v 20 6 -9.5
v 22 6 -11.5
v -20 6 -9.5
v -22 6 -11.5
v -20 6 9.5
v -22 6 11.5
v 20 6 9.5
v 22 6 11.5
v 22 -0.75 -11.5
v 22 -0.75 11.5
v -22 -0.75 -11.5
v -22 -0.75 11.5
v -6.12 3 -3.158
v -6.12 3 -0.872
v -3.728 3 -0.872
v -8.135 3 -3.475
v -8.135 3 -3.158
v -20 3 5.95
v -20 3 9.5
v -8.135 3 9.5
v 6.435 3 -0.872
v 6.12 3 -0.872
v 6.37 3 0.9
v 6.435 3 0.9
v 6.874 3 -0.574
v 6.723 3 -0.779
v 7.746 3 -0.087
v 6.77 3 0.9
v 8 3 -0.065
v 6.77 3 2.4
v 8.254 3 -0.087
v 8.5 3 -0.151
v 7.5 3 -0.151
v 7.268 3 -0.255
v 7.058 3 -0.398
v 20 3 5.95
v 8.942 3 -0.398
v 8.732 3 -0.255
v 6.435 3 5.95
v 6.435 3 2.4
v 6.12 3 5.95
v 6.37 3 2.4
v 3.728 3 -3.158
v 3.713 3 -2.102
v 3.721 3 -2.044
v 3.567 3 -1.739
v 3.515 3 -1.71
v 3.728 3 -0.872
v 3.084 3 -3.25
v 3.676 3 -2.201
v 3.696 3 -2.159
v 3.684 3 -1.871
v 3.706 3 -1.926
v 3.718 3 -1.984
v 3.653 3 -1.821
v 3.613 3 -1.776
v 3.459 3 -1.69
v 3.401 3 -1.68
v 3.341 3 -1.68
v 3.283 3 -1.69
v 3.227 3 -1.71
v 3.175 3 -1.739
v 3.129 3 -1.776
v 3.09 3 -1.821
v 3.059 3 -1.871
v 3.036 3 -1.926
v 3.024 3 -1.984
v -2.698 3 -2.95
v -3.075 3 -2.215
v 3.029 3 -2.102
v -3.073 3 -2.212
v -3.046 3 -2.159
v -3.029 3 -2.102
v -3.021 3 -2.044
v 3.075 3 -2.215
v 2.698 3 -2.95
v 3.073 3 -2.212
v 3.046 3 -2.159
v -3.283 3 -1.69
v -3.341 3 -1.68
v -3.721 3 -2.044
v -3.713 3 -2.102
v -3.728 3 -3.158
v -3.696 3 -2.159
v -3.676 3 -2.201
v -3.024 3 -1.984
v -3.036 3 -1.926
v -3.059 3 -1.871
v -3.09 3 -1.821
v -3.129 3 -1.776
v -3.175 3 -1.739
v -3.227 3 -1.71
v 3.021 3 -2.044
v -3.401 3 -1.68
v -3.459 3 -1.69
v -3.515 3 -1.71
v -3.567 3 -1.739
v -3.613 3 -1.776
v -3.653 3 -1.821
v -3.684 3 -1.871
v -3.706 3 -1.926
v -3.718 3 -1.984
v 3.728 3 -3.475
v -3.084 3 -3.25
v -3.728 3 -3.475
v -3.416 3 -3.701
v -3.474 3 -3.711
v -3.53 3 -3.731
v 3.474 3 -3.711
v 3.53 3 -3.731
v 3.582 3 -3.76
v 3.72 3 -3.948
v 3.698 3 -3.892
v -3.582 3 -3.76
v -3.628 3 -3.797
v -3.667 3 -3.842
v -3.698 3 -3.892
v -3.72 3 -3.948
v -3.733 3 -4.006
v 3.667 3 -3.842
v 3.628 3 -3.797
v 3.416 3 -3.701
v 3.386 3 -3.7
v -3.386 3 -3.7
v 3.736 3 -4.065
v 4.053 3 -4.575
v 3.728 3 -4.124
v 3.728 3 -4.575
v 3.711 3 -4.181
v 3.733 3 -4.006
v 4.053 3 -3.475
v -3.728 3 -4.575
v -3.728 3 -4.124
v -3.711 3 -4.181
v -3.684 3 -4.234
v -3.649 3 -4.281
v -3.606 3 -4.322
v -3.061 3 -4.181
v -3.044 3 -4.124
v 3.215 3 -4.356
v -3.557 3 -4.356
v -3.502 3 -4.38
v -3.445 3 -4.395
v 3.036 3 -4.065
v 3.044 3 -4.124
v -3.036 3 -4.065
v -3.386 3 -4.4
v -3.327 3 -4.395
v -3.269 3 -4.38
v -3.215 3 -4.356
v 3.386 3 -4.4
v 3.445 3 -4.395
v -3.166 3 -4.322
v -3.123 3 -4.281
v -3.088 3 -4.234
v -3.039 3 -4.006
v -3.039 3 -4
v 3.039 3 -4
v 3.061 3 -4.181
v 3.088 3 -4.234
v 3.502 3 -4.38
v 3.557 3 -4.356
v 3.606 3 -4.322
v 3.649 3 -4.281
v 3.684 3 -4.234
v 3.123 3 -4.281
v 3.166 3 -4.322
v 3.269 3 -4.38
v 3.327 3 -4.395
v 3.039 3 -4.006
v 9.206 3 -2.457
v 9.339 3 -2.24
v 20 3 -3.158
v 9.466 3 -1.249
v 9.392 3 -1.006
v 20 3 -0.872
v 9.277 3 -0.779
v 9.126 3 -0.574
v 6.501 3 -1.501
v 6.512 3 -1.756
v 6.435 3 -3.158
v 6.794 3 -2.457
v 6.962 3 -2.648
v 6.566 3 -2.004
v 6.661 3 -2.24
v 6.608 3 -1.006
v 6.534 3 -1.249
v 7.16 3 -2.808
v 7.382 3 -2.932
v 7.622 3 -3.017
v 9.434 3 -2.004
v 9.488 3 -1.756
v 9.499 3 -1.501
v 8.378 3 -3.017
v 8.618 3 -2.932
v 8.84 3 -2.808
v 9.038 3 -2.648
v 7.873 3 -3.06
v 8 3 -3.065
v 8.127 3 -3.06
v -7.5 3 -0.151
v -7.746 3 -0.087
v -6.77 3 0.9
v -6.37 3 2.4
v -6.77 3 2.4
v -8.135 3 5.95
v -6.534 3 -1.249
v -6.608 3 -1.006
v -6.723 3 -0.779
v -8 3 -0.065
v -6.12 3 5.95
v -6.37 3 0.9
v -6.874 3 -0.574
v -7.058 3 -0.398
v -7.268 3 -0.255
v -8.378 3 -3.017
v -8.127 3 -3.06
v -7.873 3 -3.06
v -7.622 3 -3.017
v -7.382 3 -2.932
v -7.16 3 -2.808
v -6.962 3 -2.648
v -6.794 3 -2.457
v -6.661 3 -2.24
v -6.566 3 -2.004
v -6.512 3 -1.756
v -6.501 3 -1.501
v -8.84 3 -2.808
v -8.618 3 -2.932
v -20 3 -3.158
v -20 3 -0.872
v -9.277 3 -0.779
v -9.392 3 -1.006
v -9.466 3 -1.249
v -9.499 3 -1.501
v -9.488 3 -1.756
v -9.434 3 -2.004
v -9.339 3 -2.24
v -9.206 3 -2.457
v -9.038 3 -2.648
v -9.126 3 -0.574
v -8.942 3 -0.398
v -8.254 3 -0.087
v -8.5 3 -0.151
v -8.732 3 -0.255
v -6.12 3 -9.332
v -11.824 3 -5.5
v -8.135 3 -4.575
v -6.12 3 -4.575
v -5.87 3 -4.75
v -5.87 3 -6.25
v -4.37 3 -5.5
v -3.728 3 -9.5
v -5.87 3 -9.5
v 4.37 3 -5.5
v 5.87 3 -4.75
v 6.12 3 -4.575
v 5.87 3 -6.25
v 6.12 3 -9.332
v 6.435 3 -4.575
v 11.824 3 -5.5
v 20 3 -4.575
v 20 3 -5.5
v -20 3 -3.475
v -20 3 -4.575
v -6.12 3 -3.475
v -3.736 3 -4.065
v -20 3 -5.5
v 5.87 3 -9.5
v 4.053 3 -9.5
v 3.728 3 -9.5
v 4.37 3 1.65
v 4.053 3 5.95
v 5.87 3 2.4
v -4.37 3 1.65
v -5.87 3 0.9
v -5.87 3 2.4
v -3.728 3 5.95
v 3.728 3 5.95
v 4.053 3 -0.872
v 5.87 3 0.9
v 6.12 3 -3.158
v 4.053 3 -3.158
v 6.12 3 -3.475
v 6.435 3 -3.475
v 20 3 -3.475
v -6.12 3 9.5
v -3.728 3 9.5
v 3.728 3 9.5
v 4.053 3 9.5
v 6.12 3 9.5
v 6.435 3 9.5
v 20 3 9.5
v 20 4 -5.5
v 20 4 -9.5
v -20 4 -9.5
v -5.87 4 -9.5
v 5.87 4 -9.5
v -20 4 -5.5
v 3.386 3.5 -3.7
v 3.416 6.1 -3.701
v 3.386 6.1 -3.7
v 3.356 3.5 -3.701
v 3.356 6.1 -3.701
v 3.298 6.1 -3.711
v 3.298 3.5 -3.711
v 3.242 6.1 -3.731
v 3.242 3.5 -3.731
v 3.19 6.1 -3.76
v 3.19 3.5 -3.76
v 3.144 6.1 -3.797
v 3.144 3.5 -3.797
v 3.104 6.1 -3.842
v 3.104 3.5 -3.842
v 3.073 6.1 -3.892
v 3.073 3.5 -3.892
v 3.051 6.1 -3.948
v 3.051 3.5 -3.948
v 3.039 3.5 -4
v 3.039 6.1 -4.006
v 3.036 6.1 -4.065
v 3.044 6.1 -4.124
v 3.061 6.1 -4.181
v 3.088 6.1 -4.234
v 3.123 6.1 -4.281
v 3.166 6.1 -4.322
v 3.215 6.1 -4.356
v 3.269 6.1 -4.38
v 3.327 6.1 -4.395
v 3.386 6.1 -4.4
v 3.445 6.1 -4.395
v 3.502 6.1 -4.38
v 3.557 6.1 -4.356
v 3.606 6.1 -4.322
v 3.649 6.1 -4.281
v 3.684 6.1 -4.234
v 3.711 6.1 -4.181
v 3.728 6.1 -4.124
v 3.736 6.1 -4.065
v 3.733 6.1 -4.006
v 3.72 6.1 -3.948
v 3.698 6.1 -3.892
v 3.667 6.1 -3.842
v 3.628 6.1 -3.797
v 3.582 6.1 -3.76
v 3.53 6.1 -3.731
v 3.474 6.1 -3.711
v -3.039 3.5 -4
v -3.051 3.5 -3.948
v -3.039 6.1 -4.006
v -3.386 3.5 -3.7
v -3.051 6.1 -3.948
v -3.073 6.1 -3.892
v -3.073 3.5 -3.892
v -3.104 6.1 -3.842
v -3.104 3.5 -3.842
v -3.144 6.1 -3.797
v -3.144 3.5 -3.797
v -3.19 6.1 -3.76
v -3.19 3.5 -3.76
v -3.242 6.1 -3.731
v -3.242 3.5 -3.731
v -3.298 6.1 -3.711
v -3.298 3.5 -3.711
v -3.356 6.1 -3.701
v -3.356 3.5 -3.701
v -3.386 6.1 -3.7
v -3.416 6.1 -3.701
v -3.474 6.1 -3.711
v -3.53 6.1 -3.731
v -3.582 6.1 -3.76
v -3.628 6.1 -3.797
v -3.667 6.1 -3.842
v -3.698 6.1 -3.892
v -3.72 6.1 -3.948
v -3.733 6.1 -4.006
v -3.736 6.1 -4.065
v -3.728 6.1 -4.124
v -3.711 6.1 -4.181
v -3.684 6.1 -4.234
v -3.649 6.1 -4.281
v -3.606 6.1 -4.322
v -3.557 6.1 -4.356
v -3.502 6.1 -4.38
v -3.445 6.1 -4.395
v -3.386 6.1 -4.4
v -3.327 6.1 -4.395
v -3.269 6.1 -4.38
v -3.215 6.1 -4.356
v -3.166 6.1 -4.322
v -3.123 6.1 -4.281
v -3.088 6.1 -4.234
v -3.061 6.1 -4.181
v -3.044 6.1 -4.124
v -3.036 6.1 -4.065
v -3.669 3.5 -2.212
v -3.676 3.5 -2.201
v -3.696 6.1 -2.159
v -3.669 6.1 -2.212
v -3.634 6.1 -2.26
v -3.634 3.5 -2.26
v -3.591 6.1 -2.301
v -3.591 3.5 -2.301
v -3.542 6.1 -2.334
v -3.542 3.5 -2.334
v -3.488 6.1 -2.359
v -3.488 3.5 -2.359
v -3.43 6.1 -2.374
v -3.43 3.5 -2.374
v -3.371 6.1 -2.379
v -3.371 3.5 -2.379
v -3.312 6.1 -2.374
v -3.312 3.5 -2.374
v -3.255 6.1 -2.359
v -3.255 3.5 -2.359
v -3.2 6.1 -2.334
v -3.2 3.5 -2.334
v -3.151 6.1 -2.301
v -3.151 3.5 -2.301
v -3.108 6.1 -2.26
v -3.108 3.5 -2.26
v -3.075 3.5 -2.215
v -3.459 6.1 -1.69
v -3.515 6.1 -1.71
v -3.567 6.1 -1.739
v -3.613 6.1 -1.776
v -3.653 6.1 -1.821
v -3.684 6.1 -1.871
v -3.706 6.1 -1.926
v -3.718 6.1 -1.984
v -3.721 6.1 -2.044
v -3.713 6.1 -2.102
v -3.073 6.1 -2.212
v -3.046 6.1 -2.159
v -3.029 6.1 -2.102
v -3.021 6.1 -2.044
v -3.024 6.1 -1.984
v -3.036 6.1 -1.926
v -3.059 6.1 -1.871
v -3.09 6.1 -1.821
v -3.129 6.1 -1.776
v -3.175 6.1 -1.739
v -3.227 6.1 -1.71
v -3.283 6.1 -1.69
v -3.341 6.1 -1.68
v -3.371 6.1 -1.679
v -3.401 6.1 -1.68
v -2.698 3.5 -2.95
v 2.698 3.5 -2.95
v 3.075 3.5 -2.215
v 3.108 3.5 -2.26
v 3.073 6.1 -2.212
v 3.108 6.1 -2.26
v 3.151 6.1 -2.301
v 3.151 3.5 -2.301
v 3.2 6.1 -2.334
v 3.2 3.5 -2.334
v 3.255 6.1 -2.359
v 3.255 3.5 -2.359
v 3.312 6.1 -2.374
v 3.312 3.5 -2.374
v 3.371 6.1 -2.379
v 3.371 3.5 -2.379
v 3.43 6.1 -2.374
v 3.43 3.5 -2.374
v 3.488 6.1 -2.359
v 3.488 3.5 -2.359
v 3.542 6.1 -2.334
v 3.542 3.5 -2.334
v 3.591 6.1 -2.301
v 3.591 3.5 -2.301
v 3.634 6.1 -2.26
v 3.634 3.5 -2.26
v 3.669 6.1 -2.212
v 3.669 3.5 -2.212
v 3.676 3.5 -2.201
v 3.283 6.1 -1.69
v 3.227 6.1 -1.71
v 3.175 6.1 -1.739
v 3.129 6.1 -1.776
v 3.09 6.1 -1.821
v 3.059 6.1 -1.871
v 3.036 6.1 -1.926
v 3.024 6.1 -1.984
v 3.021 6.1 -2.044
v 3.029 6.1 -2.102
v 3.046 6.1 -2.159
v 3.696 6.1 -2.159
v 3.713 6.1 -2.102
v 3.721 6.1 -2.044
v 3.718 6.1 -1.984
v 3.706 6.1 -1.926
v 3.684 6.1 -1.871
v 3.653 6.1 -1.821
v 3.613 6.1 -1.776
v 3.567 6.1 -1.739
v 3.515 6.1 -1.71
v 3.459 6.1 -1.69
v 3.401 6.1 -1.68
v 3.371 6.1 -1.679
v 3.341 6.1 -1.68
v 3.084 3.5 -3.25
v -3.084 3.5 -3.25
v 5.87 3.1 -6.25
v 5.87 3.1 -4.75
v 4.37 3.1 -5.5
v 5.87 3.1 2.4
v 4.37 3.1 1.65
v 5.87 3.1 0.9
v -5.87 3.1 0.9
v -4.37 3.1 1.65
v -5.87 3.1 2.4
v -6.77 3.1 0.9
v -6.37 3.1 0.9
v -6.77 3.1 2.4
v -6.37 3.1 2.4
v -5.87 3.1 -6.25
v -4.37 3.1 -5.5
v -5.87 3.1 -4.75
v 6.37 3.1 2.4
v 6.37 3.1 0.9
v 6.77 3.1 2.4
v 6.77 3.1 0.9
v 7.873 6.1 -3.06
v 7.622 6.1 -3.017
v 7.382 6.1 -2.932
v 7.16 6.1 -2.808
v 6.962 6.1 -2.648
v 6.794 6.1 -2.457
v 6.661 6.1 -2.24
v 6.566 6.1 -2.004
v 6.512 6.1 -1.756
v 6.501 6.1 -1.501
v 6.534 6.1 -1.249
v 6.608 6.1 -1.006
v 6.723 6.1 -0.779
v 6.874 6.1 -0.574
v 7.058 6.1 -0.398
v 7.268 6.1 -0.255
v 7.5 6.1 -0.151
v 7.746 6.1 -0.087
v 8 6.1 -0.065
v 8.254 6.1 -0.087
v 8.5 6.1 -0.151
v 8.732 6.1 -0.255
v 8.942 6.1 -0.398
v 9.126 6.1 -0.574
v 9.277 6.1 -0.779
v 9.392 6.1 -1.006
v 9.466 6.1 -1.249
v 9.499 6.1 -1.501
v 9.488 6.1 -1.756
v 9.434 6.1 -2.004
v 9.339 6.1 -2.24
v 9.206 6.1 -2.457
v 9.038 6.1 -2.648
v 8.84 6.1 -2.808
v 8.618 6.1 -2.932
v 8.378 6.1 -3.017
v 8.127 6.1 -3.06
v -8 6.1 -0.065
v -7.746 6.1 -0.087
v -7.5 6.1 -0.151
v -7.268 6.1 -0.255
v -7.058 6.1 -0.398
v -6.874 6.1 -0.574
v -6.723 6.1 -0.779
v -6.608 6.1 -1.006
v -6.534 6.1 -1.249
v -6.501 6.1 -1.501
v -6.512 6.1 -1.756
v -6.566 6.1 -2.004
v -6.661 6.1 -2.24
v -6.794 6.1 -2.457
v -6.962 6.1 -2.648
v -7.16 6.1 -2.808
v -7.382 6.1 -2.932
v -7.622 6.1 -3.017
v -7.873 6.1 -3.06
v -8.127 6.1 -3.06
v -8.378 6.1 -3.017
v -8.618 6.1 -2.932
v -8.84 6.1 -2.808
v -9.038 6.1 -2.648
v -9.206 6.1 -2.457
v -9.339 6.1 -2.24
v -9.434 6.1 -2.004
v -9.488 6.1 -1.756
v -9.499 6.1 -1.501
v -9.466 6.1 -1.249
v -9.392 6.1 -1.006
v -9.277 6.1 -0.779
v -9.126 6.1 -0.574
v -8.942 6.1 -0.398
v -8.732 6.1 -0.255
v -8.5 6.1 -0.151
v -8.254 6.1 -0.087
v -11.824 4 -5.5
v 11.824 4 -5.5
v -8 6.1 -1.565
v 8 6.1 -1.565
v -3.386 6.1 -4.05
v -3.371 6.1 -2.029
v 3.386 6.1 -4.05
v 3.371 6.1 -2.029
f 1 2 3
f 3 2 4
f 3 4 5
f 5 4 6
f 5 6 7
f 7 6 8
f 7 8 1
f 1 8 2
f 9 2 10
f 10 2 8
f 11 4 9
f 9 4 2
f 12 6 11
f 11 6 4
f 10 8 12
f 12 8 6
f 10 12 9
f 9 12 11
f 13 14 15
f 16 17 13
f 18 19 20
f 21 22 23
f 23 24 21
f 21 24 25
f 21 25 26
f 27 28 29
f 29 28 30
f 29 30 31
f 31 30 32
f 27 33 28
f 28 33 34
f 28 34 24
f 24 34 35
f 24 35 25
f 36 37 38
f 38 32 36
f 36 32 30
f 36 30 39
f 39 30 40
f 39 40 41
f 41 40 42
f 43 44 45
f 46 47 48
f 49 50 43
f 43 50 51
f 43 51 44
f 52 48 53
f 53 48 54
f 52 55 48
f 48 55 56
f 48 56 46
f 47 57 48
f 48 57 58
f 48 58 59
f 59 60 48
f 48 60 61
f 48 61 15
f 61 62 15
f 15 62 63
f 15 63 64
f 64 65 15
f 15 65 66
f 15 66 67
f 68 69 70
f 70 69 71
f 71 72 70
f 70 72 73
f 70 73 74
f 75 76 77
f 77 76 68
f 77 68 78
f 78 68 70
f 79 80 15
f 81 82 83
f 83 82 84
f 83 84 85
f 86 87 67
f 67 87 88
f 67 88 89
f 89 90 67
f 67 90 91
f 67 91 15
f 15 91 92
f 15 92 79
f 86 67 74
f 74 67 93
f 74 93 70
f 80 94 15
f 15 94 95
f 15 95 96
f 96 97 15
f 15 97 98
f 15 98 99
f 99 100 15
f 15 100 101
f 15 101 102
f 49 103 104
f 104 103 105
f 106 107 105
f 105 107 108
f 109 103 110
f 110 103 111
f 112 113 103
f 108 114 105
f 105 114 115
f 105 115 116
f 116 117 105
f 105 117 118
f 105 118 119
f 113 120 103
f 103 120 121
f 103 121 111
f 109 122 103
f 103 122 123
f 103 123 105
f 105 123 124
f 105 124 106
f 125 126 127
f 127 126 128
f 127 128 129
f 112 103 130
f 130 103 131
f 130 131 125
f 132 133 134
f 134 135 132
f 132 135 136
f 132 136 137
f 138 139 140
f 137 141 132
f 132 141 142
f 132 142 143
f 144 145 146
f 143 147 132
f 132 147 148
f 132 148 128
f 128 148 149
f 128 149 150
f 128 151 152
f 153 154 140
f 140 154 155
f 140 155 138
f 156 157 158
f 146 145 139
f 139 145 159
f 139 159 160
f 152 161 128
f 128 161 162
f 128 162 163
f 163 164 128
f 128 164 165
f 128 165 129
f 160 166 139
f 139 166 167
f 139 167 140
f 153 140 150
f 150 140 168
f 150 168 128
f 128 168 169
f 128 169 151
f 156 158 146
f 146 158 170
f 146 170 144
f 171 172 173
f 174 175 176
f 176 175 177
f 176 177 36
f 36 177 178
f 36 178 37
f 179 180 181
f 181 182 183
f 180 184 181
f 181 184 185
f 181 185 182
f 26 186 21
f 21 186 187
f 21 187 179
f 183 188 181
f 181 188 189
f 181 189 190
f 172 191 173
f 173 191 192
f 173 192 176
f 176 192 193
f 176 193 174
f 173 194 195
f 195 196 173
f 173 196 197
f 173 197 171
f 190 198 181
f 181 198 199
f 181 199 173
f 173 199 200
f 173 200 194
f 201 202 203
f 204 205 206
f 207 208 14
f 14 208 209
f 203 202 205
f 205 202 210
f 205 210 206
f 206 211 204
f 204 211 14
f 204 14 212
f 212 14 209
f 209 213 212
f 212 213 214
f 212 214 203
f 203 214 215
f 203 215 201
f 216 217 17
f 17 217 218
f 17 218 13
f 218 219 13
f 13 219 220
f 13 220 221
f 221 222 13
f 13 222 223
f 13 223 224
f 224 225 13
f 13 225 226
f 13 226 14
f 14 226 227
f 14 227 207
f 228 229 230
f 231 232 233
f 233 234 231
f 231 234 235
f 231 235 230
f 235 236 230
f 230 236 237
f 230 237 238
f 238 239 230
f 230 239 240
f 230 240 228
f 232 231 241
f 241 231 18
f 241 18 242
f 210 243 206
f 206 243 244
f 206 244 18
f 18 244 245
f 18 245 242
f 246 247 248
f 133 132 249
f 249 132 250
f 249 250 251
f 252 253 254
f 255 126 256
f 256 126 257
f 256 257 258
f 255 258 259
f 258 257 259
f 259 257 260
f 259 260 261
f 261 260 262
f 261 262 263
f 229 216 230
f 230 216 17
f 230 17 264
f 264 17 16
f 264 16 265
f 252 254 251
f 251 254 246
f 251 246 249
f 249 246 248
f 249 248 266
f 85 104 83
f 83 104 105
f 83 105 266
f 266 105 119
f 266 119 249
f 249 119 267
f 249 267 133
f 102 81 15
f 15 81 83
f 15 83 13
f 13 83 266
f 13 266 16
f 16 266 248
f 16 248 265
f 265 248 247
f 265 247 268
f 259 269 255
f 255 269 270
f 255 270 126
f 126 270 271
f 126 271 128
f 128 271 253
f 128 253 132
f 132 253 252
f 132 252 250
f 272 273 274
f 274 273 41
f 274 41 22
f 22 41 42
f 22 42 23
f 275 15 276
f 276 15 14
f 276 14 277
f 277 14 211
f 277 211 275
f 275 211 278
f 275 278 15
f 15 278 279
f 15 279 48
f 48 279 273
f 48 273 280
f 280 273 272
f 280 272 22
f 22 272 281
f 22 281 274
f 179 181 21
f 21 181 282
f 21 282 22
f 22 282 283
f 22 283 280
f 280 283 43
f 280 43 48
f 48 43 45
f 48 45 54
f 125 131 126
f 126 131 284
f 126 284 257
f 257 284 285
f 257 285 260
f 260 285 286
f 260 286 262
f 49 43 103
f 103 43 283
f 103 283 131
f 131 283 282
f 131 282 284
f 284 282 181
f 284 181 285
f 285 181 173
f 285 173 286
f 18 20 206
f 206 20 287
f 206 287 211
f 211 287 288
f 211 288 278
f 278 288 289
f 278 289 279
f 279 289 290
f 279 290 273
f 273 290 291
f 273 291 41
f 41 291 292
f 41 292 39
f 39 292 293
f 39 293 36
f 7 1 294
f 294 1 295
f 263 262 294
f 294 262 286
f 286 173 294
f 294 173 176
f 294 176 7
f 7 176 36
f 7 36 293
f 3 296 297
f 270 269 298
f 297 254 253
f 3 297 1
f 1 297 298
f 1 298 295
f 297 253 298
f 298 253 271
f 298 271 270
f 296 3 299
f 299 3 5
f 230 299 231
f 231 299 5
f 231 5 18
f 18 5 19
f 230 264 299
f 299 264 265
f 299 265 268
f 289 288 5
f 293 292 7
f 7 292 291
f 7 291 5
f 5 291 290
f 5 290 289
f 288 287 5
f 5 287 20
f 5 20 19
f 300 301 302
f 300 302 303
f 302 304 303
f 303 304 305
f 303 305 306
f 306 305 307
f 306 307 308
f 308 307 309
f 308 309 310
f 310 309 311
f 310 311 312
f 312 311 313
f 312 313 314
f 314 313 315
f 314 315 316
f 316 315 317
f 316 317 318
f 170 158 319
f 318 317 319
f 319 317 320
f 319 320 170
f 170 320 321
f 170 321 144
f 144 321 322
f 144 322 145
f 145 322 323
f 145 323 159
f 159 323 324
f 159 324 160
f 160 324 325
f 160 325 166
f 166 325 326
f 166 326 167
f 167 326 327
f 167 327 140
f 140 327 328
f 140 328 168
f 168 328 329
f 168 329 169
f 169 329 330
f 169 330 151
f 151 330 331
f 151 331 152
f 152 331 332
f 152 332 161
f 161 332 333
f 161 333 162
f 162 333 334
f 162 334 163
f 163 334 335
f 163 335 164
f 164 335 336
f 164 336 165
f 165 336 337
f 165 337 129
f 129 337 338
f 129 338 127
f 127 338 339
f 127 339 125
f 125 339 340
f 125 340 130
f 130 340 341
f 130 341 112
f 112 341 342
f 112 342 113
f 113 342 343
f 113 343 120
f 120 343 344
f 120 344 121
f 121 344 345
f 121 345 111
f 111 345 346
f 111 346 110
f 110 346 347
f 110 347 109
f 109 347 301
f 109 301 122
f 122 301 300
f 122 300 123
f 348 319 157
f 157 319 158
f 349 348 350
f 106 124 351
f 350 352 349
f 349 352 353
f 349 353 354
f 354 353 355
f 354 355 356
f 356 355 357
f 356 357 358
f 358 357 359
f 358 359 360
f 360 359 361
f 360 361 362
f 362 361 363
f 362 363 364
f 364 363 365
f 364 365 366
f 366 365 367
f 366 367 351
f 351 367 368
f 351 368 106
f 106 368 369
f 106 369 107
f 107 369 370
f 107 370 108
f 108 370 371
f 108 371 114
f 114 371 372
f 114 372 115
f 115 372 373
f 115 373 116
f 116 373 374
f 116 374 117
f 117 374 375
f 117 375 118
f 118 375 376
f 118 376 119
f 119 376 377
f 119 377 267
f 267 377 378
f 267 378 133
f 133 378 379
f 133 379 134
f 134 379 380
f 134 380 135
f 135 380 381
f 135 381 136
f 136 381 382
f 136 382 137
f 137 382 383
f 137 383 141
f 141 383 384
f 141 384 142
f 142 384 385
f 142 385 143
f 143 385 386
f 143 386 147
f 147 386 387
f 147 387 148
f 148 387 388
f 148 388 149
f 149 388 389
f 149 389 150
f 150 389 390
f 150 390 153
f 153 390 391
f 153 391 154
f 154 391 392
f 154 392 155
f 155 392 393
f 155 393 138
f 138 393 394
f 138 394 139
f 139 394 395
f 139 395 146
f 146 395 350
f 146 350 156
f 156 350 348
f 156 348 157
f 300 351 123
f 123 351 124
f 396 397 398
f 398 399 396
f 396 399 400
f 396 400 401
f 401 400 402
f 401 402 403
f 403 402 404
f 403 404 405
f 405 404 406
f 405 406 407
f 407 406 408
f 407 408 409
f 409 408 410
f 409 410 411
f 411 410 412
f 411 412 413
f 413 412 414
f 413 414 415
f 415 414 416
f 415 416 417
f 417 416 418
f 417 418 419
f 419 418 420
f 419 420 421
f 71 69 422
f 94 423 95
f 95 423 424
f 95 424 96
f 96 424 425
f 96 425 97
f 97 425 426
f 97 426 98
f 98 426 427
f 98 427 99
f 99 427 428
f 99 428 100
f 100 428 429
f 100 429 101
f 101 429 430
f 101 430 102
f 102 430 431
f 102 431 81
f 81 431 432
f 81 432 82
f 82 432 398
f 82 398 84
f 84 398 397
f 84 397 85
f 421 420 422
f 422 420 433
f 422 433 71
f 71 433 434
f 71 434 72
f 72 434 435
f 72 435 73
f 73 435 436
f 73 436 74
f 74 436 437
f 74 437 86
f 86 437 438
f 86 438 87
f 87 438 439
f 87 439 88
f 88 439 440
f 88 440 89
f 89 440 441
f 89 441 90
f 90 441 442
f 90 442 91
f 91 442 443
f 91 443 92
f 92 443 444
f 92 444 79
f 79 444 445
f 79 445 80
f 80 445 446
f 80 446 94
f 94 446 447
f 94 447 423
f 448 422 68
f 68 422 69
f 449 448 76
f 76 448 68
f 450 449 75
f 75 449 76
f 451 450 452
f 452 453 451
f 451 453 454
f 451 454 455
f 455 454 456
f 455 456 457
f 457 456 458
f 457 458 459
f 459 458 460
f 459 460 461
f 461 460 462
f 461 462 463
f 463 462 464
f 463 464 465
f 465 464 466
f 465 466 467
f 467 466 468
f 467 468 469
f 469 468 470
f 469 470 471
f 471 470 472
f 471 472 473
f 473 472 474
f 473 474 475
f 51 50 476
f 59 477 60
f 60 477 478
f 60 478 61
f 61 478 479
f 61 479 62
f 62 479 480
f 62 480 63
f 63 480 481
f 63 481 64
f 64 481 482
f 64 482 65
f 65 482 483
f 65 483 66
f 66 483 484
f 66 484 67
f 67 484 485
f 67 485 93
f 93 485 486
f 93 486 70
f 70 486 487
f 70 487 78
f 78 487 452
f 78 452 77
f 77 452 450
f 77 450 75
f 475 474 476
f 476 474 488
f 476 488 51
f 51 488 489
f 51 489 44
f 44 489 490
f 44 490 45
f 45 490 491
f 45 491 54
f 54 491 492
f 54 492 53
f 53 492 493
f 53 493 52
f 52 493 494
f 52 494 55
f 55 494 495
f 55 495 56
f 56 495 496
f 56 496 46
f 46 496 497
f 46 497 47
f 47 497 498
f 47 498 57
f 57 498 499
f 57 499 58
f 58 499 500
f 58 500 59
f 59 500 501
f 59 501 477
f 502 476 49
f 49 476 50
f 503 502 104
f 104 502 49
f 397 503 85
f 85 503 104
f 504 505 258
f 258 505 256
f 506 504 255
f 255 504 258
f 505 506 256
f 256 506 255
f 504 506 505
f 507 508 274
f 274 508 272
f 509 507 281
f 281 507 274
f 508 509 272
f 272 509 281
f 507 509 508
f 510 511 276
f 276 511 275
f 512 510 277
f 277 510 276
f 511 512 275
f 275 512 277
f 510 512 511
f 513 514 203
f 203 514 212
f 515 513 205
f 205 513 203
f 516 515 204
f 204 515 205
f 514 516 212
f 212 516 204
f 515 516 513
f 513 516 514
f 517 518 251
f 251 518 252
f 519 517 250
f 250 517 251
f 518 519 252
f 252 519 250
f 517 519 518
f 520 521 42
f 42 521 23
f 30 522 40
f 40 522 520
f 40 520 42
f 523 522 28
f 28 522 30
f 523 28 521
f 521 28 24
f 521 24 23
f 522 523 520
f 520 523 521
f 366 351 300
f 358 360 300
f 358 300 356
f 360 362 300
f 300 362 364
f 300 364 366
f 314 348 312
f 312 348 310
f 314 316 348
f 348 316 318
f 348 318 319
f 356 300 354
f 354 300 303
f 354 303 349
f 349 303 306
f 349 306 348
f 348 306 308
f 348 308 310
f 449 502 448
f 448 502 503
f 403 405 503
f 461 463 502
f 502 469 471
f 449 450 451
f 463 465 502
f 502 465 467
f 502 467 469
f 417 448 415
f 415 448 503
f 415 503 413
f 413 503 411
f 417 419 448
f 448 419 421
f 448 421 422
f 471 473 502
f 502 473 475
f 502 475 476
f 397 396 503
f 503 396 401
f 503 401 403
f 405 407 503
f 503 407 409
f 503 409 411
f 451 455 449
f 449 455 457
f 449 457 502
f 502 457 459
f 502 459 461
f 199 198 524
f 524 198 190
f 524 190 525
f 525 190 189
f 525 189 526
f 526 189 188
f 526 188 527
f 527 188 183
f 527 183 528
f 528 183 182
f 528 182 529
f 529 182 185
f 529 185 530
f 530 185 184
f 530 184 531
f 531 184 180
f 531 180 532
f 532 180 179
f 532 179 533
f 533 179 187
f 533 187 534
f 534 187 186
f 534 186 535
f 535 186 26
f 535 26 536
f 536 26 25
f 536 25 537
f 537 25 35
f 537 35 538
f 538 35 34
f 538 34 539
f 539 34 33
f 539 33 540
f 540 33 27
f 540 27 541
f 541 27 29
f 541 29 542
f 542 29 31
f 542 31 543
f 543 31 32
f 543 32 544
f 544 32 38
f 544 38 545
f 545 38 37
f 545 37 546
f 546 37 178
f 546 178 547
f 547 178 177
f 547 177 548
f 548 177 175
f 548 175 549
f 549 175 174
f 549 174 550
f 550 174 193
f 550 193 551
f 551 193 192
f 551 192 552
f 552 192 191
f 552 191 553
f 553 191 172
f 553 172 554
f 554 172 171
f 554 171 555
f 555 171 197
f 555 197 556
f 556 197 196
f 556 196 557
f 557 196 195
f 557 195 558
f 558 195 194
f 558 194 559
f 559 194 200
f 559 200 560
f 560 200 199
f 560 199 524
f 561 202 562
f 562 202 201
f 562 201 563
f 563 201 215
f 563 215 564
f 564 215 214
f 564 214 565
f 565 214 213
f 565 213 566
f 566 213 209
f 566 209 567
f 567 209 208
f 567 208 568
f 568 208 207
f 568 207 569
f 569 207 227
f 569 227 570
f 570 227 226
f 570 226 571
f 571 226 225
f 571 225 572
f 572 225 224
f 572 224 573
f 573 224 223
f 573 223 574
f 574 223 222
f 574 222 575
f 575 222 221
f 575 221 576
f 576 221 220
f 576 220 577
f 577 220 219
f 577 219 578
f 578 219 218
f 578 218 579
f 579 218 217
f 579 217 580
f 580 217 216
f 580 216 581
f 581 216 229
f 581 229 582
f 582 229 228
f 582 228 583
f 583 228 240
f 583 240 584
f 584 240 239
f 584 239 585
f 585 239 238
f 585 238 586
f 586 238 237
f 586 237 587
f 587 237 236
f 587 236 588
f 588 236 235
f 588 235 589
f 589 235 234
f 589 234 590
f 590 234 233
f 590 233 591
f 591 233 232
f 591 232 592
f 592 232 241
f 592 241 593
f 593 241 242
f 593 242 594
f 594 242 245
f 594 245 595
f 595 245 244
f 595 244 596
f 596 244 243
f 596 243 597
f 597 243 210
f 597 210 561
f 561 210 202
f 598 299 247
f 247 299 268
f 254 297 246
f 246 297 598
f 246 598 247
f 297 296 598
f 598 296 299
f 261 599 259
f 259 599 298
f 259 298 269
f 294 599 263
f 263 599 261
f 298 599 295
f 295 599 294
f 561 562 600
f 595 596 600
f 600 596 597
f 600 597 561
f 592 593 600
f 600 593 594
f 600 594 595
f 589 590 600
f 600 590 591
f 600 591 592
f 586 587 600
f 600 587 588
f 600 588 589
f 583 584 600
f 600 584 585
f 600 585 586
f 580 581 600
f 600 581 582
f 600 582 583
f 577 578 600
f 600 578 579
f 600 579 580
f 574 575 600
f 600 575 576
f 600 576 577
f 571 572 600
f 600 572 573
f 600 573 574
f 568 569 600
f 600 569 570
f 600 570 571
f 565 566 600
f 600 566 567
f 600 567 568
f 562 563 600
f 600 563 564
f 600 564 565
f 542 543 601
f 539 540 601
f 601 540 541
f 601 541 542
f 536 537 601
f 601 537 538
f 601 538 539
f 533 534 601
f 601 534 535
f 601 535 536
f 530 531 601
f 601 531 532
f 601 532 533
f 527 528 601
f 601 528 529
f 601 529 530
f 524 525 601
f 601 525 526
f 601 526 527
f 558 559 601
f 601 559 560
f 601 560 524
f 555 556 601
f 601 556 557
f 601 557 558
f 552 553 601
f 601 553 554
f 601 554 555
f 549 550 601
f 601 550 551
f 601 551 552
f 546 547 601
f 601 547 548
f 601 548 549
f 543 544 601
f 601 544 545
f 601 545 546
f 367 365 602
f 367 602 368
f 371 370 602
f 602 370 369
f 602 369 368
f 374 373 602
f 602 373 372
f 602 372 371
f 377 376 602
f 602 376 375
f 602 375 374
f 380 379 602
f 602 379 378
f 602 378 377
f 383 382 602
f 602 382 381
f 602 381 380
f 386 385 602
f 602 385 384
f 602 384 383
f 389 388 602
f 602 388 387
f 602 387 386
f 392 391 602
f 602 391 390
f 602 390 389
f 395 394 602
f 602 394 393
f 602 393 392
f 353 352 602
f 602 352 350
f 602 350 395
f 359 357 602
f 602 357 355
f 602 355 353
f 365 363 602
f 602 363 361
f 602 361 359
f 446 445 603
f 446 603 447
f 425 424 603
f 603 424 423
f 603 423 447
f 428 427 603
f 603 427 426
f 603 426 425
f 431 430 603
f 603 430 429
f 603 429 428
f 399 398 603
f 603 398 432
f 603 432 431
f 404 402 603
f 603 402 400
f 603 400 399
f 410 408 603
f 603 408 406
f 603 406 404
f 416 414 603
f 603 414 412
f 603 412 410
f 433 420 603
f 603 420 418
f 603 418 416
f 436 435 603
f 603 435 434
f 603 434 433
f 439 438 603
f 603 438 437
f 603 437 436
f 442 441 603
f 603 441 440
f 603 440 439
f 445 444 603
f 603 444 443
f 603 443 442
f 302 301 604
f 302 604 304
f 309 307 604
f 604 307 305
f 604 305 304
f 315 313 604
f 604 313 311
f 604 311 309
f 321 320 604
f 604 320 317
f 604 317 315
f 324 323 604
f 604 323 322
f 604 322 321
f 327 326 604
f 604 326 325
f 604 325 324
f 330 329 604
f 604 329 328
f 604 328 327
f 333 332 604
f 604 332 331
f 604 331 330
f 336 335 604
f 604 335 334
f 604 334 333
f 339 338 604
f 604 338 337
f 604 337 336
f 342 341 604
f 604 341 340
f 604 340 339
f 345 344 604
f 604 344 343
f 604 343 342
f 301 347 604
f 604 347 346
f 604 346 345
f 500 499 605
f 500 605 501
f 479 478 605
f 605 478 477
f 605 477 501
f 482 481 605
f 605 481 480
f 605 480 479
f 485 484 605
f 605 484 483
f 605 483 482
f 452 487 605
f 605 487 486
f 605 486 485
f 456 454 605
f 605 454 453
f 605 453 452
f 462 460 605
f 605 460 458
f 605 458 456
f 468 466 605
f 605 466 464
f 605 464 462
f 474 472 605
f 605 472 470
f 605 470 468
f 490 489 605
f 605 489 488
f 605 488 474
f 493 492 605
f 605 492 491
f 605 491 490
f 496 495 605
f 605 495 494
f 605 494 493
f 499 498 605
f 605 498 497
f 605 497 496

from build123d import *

# Parameters (mm, degrees)
SKETCH1_W           = 44
SKETCH1_H           = 23
BOSS_EXTRUDE1_DEPTH = 6
SKETCH2_W           = 44
SKETCH2_H           = 23
BOSS_EXTRUDE2_DEPTH = 0.75
CAVITY1_START       = 3
CAVITY1_OUTLINE_W   = 0.4
CAVITY1_OUTLINE_H   = 1.5
CAVITY1_OUTLINE_R   = 1.5
CAVITY1_DEPTH       = 3
CAVITY1_START_2     = 4
CAVITY1_2_OUTLINE_W = 0.4
CAVITY1_2_OUTLINE_H = 1.5
CAVITY1_2_DEPTH     = 2
CAVITY1_START_3     = 3.1
CAVITY1_3_OUTLINE_W = 0.4
CAVITY1_3_OUTLINE_H = 1.5
CAVITY1_3_DEPTH     = 0.9
CAVITY1_START_4     = 3.5
CAVITY1_4_DEPTH     = 0.5
SKETCH5_R           = 1.5
SKETCH5_R_2         = 0.35
BOSS_EXTRUDE3_DEPTH = 0.1


# Read off the part's stored shape, not the designer's step: Cavity1
with BuildPart() as part:
    # Sketch1 → Boss-Extrude1 (new body)
    with BuildSketch(Plane(origin=(0, 0, 0), x_dir=(1, 0, 0), z_dir=(0, 1, 0))):
        Rectangle(SKETCH1_W, SKETCH1_H)
    extrude(amount=BOSS_EXTRUDE1_DEPTH)

    # Sketch2 → Boss-Extrude2 (add)
    with BuildSketch(Plane.XZ):
        Rectangle(SKETCH2_W, SKETCH2_H)
    extrude(amount=BOSS_EXTRUDE2_DEPTH)

    # Cavity1 outline → Cavity1 (cut)
    with BuildSketch(Plane(origin=(0, 0, 0), x_dir=(1, 0, 0), z_dir=(0, 1, 0)).offset(CAVITY1_START)):
        Polygon((20, -9.5), (20, 5.5), (11.824003475, 5.5), (5.87, 9.5), (-5.87, 9.5), (-11.824003475, 5.5), (-20, 5.5), (-20, -9.5), align=None)
        with Locations((-6.57, -1.65)):
            Rectangle(CAVITY1_OUTLINE_W, CAVITY1_OUTLINE_H, mode=Mode.SUBTRACT)
        Polygon((-5.87, -2.4), (-5.87, -0.9), (-4.37, -1.65), align=None, mode=Mode.SUBTRACT)
        Polygon((4.37, -1.65), (5.87, -0.9), (5.87, -2.4), align=None, mode=Mode.SUBTRACT)
        with Locations((6.57, -1.65)):
            Rectangle(CAVITY1_OUTLINE_W, CAVITY1_OUTLINE_H, mode=Mode.SUBTRACT)
        with Locations((-8, 1.565)):
            Circle(CAVITY1_OUTLINE_R, mode=Mode.SUBTRACT)
        Polygon((-4.37, 5.5), (-5.87, 4.75), (-5.87, 6.25), align=None, mode=Mode.SUBTRACT)
        with Locations((8, 1.565)):
            Circle(CAVITY1_OUTLINE_R, mode=Mode.SUBTRACT)
        with BuildLine():
            ThreePointArc((-3.0745499, 2.214515103), (-3.36304333, 1.678756458), (-3.67597558, 2.200617734))
            Line((-3.67597558, 2.200617734), (-3.084051452, 3.25))
            Line((-3.084051452, 3.25), (3.084051452, 3.25))
            Line((3.084051452, 3.25), (3.67597558, 2.200617734))
            ThreePointArc((3.67597558, 2.200617734), (3.36304333, 1.678756458), (3.0745499, 2.214515103))
            Line((3.0745499, 2.214515103), (2.698000841, 2.95))
            Line((2.698000841, 2.95), (-2.698000841, 2.95))
            Line((-2.698000841, 2.95), (-3.0745499, 2.214515103))
        make_face(mode=Mode.SUBTRACT)
        with BuildLine():
            ThreePointArc((3.039420657, 4), (3.614959604, 4.314575131), (3.385830819, 3.7))
            Line((3.385830819, 3.7), (-3.385830819, 3.7))
            ThreePointArc((-3.385830819, 3.7), (-3.614959604, 4.314575131), (-3.039420657, 4))
            Line((-3.039420657, 4), (3.039420657, 4))
        make_face(mode=Mode.SUBTRACT)
        Polygon((4.37, 5.5), (5.87, 6.25), (5.87, 4.75), align=None, mode=Mode.SUBTRACT)
    extrude(amount=CAVITY1_DEPTH, mode=Mode.SUBTRACT)

    # Cavity1 2 outline → Cavity1 2 (cut)
    with BuildSketch(Plane(origin=(0, 0, 0), x_dir=(1, 0, 0), z_dir=(0, 1, 0)).offset(CAVITY1_START_2)):
        Polygon((20, 5.5), (20, 9.5), (5.87, 9.5), (11.824003475, 5.5), align=None)
        Polygon((-11.824003475, 5.5), (-5.87, 9.5), (-20, 9.5), (-20, 5.5), align=None)
        with BuildLine():
            ThreePointArc((3.385830819, 3.7), (3.156702034, 3.785424869), (3.039420657, 4))
            Line((3.039420657, 4), (-3.039420657, 4))
            ThreePointArc((-3.039420657, 4), (-3.156702034, 3.785424869), (-3.385830819, 3.7))
            Line((-3.385830819, 3.7), (3.385830819, 3.7))
        make_face()
        with BuildLine():
            ThreePointArc((-3.67597558, 2.200617734), (-3.379214176, 2.37856965), (-3.0745499, 2.214515103))
            Line((-3.0745499, 2.214515103), (-2.698000841, 2.95))
            Line((-2.698000841, 2.95), (2.698000841, 2.95))
            Line((2.698000841, 2.95), (3.0745499, 2.214515103))
            ThreePointArc((3.0745499, 2.214515103), (3.379214176, 2.37856965), (3.67597558, 2.200617734))
            Line((3.67597558, 2.200617734), (3.084051452, 3.25))
            Line((3.084051452, 3.25), (-3.084051452, 3.25))
            Line((-3.084051452, 3.25), (-3.67597558, 2.200617734))
        make_face()
        Polygon((5.87, 4.75), (5.87, 6.25), (4.37, 5.5), align=None)
        Polygon((5.87, -2.4), (5.87, -0.9), (4.37, -1.65), align=None)
        Polygon((-4.37, -1.65), (-5.87, -0.9), (-5.87, -2.4), align=None)
        Polygon((-5.87, 6.25), (-5.87, 4.75), (-4.37, 5.5), align=None)
        with Locations((-6.57, -1.65)):
            Rectangle(CAVITY1_2_OUTLINE_W, CAVITY1_2_OUTLINE_H)
        with Locations((6.57, -1.65)):
            Rectangle(CAVITY1_2_OUTLINE_W, CAVITY1_2_OUTLINE_H)
    extrude(amount=CAVITY1_2_DEPTH, mode=Mode.SUBTRACT)

    # Cavity1 3 outline → Cavity1 3 (cut)
    with BuildSketch(Plane(origin=(0, 0, 0), x_dir=(1, 0, 0), z_dir=(0, 1, 0)).offset(CAVITY1_START_3)):
        Polygon((5.87, 4.75), (5.87, 6.25), (4.37, 5.5), align=None)
        Polygon((5.87, -2.4), (5.87, -0.9), (4.37, -1.65), align=None)
        Polygon((-4.37, -1.65), (-5.87, -0.9), (-5.87, -2.4), align=None)
        Polygon((-5.87, 6.25), (-5.87, 4.75), (-4.37, 5.5), align=None)
        with Locations((-6.57, -1.65)):
            Rectangle(CAVITY1_3_OUTLINE_W, CAVITY1_3_OUTLINE_H)
        with Locations((6.57, -1.65)):
            Rectangle(CAVITY1_3_OUTLINE_W, CAVITY1_3_OUTLINE_H)
    extrude(amount=CAVITY1_3_DEPTH, mode=Mode.SUBTRACT)

    # Cavity1 4 outline → Cavity1 4 (cut)
    with BuildSketch(Plane(origin=(0, 0, 0), x_dir=(1, 0, 0), z_dir=(0, 1, 0)).offset(CAVITY1_START_4)):
        with BuildLine():
            ThreePointArc((3.385830819, 3.7), (3.156702034, 3.785424869), (3.039420657, 4))
            Line((3.039420657, 4), (-3.039420657, 4))
            ThreePointArc((-3.039420657, 4), (-3.156702034, 3.785424869), (-3.385830819, 3.7))
            Line((-3.385830819, 3.7), (3.385830819, 3.7))
        make_face()
        with BuildLine():
            ThreePointArc((-3.67597558, 2.200617734), (-3.379214176, 2.37856965), (-3.0745499, 2.214515103))
            Line((-3.0745499, 2.214515103), (-2.698000841, 2.95))
            Line((-2.698000841, 2.95), (2.698000841, 2.95))
            Line((2.698000841, 2.95), (3.0745499, 2.214515103))
            ThreePointArc((3.0745499, 2.214515103), (3.379214176, 2.37856965), (3.67597558, 2.200617734))
            Line((3.67597558, 2.200617734), (3.084051452, 3.25))
            Line((3.084051452, 3.25), (-3.084051452, 3.25))
            Line((-3.084051452, 3.25), (-3.67597558, 2.200617734))
        make_face()
    extrude(amount=CAVITY1_4_DEPTH, mode=Mode.SUBTRACT)

    # Sketch5 → Boss-Extrude3 (add)
    with BuildSketch(Plane(origin=(0, 6, 0), x_dir=(1, 0, 0), z_dir=(0, 1, 0))):
        with Locations(Location((-8, 1.565, 0), (0, 0, 270))):
            Circle(SKETCH5_R)
        with Locations(Location((8, 1.565, 0), (0, 0, 270))):
            Circle(SKETCH5_R)
        with Locations(Location((-3.385830819, 4.05, 0), (0, 0, 270))):
            Circle(SKETCH5_R_2)
        with Locations(Location((-3.371128753, 2.028663054, 0), (0, 0, 32.073441705))):
            Circle(SKETCH5_R_2)
        with Locations(Location((3.385830819, 4.05, 0), (0, 0, 270))):
            Circle(SKETCH5_R_2)
        with Locations(Location((3.371128753, 2.028663054, 0), (0, 0, 147.926558295))):
            Circle(SKETCH5_R_2)
    extrude(amount=BOSS_EXTRUDE3_DEPTH)


solid = part.part
